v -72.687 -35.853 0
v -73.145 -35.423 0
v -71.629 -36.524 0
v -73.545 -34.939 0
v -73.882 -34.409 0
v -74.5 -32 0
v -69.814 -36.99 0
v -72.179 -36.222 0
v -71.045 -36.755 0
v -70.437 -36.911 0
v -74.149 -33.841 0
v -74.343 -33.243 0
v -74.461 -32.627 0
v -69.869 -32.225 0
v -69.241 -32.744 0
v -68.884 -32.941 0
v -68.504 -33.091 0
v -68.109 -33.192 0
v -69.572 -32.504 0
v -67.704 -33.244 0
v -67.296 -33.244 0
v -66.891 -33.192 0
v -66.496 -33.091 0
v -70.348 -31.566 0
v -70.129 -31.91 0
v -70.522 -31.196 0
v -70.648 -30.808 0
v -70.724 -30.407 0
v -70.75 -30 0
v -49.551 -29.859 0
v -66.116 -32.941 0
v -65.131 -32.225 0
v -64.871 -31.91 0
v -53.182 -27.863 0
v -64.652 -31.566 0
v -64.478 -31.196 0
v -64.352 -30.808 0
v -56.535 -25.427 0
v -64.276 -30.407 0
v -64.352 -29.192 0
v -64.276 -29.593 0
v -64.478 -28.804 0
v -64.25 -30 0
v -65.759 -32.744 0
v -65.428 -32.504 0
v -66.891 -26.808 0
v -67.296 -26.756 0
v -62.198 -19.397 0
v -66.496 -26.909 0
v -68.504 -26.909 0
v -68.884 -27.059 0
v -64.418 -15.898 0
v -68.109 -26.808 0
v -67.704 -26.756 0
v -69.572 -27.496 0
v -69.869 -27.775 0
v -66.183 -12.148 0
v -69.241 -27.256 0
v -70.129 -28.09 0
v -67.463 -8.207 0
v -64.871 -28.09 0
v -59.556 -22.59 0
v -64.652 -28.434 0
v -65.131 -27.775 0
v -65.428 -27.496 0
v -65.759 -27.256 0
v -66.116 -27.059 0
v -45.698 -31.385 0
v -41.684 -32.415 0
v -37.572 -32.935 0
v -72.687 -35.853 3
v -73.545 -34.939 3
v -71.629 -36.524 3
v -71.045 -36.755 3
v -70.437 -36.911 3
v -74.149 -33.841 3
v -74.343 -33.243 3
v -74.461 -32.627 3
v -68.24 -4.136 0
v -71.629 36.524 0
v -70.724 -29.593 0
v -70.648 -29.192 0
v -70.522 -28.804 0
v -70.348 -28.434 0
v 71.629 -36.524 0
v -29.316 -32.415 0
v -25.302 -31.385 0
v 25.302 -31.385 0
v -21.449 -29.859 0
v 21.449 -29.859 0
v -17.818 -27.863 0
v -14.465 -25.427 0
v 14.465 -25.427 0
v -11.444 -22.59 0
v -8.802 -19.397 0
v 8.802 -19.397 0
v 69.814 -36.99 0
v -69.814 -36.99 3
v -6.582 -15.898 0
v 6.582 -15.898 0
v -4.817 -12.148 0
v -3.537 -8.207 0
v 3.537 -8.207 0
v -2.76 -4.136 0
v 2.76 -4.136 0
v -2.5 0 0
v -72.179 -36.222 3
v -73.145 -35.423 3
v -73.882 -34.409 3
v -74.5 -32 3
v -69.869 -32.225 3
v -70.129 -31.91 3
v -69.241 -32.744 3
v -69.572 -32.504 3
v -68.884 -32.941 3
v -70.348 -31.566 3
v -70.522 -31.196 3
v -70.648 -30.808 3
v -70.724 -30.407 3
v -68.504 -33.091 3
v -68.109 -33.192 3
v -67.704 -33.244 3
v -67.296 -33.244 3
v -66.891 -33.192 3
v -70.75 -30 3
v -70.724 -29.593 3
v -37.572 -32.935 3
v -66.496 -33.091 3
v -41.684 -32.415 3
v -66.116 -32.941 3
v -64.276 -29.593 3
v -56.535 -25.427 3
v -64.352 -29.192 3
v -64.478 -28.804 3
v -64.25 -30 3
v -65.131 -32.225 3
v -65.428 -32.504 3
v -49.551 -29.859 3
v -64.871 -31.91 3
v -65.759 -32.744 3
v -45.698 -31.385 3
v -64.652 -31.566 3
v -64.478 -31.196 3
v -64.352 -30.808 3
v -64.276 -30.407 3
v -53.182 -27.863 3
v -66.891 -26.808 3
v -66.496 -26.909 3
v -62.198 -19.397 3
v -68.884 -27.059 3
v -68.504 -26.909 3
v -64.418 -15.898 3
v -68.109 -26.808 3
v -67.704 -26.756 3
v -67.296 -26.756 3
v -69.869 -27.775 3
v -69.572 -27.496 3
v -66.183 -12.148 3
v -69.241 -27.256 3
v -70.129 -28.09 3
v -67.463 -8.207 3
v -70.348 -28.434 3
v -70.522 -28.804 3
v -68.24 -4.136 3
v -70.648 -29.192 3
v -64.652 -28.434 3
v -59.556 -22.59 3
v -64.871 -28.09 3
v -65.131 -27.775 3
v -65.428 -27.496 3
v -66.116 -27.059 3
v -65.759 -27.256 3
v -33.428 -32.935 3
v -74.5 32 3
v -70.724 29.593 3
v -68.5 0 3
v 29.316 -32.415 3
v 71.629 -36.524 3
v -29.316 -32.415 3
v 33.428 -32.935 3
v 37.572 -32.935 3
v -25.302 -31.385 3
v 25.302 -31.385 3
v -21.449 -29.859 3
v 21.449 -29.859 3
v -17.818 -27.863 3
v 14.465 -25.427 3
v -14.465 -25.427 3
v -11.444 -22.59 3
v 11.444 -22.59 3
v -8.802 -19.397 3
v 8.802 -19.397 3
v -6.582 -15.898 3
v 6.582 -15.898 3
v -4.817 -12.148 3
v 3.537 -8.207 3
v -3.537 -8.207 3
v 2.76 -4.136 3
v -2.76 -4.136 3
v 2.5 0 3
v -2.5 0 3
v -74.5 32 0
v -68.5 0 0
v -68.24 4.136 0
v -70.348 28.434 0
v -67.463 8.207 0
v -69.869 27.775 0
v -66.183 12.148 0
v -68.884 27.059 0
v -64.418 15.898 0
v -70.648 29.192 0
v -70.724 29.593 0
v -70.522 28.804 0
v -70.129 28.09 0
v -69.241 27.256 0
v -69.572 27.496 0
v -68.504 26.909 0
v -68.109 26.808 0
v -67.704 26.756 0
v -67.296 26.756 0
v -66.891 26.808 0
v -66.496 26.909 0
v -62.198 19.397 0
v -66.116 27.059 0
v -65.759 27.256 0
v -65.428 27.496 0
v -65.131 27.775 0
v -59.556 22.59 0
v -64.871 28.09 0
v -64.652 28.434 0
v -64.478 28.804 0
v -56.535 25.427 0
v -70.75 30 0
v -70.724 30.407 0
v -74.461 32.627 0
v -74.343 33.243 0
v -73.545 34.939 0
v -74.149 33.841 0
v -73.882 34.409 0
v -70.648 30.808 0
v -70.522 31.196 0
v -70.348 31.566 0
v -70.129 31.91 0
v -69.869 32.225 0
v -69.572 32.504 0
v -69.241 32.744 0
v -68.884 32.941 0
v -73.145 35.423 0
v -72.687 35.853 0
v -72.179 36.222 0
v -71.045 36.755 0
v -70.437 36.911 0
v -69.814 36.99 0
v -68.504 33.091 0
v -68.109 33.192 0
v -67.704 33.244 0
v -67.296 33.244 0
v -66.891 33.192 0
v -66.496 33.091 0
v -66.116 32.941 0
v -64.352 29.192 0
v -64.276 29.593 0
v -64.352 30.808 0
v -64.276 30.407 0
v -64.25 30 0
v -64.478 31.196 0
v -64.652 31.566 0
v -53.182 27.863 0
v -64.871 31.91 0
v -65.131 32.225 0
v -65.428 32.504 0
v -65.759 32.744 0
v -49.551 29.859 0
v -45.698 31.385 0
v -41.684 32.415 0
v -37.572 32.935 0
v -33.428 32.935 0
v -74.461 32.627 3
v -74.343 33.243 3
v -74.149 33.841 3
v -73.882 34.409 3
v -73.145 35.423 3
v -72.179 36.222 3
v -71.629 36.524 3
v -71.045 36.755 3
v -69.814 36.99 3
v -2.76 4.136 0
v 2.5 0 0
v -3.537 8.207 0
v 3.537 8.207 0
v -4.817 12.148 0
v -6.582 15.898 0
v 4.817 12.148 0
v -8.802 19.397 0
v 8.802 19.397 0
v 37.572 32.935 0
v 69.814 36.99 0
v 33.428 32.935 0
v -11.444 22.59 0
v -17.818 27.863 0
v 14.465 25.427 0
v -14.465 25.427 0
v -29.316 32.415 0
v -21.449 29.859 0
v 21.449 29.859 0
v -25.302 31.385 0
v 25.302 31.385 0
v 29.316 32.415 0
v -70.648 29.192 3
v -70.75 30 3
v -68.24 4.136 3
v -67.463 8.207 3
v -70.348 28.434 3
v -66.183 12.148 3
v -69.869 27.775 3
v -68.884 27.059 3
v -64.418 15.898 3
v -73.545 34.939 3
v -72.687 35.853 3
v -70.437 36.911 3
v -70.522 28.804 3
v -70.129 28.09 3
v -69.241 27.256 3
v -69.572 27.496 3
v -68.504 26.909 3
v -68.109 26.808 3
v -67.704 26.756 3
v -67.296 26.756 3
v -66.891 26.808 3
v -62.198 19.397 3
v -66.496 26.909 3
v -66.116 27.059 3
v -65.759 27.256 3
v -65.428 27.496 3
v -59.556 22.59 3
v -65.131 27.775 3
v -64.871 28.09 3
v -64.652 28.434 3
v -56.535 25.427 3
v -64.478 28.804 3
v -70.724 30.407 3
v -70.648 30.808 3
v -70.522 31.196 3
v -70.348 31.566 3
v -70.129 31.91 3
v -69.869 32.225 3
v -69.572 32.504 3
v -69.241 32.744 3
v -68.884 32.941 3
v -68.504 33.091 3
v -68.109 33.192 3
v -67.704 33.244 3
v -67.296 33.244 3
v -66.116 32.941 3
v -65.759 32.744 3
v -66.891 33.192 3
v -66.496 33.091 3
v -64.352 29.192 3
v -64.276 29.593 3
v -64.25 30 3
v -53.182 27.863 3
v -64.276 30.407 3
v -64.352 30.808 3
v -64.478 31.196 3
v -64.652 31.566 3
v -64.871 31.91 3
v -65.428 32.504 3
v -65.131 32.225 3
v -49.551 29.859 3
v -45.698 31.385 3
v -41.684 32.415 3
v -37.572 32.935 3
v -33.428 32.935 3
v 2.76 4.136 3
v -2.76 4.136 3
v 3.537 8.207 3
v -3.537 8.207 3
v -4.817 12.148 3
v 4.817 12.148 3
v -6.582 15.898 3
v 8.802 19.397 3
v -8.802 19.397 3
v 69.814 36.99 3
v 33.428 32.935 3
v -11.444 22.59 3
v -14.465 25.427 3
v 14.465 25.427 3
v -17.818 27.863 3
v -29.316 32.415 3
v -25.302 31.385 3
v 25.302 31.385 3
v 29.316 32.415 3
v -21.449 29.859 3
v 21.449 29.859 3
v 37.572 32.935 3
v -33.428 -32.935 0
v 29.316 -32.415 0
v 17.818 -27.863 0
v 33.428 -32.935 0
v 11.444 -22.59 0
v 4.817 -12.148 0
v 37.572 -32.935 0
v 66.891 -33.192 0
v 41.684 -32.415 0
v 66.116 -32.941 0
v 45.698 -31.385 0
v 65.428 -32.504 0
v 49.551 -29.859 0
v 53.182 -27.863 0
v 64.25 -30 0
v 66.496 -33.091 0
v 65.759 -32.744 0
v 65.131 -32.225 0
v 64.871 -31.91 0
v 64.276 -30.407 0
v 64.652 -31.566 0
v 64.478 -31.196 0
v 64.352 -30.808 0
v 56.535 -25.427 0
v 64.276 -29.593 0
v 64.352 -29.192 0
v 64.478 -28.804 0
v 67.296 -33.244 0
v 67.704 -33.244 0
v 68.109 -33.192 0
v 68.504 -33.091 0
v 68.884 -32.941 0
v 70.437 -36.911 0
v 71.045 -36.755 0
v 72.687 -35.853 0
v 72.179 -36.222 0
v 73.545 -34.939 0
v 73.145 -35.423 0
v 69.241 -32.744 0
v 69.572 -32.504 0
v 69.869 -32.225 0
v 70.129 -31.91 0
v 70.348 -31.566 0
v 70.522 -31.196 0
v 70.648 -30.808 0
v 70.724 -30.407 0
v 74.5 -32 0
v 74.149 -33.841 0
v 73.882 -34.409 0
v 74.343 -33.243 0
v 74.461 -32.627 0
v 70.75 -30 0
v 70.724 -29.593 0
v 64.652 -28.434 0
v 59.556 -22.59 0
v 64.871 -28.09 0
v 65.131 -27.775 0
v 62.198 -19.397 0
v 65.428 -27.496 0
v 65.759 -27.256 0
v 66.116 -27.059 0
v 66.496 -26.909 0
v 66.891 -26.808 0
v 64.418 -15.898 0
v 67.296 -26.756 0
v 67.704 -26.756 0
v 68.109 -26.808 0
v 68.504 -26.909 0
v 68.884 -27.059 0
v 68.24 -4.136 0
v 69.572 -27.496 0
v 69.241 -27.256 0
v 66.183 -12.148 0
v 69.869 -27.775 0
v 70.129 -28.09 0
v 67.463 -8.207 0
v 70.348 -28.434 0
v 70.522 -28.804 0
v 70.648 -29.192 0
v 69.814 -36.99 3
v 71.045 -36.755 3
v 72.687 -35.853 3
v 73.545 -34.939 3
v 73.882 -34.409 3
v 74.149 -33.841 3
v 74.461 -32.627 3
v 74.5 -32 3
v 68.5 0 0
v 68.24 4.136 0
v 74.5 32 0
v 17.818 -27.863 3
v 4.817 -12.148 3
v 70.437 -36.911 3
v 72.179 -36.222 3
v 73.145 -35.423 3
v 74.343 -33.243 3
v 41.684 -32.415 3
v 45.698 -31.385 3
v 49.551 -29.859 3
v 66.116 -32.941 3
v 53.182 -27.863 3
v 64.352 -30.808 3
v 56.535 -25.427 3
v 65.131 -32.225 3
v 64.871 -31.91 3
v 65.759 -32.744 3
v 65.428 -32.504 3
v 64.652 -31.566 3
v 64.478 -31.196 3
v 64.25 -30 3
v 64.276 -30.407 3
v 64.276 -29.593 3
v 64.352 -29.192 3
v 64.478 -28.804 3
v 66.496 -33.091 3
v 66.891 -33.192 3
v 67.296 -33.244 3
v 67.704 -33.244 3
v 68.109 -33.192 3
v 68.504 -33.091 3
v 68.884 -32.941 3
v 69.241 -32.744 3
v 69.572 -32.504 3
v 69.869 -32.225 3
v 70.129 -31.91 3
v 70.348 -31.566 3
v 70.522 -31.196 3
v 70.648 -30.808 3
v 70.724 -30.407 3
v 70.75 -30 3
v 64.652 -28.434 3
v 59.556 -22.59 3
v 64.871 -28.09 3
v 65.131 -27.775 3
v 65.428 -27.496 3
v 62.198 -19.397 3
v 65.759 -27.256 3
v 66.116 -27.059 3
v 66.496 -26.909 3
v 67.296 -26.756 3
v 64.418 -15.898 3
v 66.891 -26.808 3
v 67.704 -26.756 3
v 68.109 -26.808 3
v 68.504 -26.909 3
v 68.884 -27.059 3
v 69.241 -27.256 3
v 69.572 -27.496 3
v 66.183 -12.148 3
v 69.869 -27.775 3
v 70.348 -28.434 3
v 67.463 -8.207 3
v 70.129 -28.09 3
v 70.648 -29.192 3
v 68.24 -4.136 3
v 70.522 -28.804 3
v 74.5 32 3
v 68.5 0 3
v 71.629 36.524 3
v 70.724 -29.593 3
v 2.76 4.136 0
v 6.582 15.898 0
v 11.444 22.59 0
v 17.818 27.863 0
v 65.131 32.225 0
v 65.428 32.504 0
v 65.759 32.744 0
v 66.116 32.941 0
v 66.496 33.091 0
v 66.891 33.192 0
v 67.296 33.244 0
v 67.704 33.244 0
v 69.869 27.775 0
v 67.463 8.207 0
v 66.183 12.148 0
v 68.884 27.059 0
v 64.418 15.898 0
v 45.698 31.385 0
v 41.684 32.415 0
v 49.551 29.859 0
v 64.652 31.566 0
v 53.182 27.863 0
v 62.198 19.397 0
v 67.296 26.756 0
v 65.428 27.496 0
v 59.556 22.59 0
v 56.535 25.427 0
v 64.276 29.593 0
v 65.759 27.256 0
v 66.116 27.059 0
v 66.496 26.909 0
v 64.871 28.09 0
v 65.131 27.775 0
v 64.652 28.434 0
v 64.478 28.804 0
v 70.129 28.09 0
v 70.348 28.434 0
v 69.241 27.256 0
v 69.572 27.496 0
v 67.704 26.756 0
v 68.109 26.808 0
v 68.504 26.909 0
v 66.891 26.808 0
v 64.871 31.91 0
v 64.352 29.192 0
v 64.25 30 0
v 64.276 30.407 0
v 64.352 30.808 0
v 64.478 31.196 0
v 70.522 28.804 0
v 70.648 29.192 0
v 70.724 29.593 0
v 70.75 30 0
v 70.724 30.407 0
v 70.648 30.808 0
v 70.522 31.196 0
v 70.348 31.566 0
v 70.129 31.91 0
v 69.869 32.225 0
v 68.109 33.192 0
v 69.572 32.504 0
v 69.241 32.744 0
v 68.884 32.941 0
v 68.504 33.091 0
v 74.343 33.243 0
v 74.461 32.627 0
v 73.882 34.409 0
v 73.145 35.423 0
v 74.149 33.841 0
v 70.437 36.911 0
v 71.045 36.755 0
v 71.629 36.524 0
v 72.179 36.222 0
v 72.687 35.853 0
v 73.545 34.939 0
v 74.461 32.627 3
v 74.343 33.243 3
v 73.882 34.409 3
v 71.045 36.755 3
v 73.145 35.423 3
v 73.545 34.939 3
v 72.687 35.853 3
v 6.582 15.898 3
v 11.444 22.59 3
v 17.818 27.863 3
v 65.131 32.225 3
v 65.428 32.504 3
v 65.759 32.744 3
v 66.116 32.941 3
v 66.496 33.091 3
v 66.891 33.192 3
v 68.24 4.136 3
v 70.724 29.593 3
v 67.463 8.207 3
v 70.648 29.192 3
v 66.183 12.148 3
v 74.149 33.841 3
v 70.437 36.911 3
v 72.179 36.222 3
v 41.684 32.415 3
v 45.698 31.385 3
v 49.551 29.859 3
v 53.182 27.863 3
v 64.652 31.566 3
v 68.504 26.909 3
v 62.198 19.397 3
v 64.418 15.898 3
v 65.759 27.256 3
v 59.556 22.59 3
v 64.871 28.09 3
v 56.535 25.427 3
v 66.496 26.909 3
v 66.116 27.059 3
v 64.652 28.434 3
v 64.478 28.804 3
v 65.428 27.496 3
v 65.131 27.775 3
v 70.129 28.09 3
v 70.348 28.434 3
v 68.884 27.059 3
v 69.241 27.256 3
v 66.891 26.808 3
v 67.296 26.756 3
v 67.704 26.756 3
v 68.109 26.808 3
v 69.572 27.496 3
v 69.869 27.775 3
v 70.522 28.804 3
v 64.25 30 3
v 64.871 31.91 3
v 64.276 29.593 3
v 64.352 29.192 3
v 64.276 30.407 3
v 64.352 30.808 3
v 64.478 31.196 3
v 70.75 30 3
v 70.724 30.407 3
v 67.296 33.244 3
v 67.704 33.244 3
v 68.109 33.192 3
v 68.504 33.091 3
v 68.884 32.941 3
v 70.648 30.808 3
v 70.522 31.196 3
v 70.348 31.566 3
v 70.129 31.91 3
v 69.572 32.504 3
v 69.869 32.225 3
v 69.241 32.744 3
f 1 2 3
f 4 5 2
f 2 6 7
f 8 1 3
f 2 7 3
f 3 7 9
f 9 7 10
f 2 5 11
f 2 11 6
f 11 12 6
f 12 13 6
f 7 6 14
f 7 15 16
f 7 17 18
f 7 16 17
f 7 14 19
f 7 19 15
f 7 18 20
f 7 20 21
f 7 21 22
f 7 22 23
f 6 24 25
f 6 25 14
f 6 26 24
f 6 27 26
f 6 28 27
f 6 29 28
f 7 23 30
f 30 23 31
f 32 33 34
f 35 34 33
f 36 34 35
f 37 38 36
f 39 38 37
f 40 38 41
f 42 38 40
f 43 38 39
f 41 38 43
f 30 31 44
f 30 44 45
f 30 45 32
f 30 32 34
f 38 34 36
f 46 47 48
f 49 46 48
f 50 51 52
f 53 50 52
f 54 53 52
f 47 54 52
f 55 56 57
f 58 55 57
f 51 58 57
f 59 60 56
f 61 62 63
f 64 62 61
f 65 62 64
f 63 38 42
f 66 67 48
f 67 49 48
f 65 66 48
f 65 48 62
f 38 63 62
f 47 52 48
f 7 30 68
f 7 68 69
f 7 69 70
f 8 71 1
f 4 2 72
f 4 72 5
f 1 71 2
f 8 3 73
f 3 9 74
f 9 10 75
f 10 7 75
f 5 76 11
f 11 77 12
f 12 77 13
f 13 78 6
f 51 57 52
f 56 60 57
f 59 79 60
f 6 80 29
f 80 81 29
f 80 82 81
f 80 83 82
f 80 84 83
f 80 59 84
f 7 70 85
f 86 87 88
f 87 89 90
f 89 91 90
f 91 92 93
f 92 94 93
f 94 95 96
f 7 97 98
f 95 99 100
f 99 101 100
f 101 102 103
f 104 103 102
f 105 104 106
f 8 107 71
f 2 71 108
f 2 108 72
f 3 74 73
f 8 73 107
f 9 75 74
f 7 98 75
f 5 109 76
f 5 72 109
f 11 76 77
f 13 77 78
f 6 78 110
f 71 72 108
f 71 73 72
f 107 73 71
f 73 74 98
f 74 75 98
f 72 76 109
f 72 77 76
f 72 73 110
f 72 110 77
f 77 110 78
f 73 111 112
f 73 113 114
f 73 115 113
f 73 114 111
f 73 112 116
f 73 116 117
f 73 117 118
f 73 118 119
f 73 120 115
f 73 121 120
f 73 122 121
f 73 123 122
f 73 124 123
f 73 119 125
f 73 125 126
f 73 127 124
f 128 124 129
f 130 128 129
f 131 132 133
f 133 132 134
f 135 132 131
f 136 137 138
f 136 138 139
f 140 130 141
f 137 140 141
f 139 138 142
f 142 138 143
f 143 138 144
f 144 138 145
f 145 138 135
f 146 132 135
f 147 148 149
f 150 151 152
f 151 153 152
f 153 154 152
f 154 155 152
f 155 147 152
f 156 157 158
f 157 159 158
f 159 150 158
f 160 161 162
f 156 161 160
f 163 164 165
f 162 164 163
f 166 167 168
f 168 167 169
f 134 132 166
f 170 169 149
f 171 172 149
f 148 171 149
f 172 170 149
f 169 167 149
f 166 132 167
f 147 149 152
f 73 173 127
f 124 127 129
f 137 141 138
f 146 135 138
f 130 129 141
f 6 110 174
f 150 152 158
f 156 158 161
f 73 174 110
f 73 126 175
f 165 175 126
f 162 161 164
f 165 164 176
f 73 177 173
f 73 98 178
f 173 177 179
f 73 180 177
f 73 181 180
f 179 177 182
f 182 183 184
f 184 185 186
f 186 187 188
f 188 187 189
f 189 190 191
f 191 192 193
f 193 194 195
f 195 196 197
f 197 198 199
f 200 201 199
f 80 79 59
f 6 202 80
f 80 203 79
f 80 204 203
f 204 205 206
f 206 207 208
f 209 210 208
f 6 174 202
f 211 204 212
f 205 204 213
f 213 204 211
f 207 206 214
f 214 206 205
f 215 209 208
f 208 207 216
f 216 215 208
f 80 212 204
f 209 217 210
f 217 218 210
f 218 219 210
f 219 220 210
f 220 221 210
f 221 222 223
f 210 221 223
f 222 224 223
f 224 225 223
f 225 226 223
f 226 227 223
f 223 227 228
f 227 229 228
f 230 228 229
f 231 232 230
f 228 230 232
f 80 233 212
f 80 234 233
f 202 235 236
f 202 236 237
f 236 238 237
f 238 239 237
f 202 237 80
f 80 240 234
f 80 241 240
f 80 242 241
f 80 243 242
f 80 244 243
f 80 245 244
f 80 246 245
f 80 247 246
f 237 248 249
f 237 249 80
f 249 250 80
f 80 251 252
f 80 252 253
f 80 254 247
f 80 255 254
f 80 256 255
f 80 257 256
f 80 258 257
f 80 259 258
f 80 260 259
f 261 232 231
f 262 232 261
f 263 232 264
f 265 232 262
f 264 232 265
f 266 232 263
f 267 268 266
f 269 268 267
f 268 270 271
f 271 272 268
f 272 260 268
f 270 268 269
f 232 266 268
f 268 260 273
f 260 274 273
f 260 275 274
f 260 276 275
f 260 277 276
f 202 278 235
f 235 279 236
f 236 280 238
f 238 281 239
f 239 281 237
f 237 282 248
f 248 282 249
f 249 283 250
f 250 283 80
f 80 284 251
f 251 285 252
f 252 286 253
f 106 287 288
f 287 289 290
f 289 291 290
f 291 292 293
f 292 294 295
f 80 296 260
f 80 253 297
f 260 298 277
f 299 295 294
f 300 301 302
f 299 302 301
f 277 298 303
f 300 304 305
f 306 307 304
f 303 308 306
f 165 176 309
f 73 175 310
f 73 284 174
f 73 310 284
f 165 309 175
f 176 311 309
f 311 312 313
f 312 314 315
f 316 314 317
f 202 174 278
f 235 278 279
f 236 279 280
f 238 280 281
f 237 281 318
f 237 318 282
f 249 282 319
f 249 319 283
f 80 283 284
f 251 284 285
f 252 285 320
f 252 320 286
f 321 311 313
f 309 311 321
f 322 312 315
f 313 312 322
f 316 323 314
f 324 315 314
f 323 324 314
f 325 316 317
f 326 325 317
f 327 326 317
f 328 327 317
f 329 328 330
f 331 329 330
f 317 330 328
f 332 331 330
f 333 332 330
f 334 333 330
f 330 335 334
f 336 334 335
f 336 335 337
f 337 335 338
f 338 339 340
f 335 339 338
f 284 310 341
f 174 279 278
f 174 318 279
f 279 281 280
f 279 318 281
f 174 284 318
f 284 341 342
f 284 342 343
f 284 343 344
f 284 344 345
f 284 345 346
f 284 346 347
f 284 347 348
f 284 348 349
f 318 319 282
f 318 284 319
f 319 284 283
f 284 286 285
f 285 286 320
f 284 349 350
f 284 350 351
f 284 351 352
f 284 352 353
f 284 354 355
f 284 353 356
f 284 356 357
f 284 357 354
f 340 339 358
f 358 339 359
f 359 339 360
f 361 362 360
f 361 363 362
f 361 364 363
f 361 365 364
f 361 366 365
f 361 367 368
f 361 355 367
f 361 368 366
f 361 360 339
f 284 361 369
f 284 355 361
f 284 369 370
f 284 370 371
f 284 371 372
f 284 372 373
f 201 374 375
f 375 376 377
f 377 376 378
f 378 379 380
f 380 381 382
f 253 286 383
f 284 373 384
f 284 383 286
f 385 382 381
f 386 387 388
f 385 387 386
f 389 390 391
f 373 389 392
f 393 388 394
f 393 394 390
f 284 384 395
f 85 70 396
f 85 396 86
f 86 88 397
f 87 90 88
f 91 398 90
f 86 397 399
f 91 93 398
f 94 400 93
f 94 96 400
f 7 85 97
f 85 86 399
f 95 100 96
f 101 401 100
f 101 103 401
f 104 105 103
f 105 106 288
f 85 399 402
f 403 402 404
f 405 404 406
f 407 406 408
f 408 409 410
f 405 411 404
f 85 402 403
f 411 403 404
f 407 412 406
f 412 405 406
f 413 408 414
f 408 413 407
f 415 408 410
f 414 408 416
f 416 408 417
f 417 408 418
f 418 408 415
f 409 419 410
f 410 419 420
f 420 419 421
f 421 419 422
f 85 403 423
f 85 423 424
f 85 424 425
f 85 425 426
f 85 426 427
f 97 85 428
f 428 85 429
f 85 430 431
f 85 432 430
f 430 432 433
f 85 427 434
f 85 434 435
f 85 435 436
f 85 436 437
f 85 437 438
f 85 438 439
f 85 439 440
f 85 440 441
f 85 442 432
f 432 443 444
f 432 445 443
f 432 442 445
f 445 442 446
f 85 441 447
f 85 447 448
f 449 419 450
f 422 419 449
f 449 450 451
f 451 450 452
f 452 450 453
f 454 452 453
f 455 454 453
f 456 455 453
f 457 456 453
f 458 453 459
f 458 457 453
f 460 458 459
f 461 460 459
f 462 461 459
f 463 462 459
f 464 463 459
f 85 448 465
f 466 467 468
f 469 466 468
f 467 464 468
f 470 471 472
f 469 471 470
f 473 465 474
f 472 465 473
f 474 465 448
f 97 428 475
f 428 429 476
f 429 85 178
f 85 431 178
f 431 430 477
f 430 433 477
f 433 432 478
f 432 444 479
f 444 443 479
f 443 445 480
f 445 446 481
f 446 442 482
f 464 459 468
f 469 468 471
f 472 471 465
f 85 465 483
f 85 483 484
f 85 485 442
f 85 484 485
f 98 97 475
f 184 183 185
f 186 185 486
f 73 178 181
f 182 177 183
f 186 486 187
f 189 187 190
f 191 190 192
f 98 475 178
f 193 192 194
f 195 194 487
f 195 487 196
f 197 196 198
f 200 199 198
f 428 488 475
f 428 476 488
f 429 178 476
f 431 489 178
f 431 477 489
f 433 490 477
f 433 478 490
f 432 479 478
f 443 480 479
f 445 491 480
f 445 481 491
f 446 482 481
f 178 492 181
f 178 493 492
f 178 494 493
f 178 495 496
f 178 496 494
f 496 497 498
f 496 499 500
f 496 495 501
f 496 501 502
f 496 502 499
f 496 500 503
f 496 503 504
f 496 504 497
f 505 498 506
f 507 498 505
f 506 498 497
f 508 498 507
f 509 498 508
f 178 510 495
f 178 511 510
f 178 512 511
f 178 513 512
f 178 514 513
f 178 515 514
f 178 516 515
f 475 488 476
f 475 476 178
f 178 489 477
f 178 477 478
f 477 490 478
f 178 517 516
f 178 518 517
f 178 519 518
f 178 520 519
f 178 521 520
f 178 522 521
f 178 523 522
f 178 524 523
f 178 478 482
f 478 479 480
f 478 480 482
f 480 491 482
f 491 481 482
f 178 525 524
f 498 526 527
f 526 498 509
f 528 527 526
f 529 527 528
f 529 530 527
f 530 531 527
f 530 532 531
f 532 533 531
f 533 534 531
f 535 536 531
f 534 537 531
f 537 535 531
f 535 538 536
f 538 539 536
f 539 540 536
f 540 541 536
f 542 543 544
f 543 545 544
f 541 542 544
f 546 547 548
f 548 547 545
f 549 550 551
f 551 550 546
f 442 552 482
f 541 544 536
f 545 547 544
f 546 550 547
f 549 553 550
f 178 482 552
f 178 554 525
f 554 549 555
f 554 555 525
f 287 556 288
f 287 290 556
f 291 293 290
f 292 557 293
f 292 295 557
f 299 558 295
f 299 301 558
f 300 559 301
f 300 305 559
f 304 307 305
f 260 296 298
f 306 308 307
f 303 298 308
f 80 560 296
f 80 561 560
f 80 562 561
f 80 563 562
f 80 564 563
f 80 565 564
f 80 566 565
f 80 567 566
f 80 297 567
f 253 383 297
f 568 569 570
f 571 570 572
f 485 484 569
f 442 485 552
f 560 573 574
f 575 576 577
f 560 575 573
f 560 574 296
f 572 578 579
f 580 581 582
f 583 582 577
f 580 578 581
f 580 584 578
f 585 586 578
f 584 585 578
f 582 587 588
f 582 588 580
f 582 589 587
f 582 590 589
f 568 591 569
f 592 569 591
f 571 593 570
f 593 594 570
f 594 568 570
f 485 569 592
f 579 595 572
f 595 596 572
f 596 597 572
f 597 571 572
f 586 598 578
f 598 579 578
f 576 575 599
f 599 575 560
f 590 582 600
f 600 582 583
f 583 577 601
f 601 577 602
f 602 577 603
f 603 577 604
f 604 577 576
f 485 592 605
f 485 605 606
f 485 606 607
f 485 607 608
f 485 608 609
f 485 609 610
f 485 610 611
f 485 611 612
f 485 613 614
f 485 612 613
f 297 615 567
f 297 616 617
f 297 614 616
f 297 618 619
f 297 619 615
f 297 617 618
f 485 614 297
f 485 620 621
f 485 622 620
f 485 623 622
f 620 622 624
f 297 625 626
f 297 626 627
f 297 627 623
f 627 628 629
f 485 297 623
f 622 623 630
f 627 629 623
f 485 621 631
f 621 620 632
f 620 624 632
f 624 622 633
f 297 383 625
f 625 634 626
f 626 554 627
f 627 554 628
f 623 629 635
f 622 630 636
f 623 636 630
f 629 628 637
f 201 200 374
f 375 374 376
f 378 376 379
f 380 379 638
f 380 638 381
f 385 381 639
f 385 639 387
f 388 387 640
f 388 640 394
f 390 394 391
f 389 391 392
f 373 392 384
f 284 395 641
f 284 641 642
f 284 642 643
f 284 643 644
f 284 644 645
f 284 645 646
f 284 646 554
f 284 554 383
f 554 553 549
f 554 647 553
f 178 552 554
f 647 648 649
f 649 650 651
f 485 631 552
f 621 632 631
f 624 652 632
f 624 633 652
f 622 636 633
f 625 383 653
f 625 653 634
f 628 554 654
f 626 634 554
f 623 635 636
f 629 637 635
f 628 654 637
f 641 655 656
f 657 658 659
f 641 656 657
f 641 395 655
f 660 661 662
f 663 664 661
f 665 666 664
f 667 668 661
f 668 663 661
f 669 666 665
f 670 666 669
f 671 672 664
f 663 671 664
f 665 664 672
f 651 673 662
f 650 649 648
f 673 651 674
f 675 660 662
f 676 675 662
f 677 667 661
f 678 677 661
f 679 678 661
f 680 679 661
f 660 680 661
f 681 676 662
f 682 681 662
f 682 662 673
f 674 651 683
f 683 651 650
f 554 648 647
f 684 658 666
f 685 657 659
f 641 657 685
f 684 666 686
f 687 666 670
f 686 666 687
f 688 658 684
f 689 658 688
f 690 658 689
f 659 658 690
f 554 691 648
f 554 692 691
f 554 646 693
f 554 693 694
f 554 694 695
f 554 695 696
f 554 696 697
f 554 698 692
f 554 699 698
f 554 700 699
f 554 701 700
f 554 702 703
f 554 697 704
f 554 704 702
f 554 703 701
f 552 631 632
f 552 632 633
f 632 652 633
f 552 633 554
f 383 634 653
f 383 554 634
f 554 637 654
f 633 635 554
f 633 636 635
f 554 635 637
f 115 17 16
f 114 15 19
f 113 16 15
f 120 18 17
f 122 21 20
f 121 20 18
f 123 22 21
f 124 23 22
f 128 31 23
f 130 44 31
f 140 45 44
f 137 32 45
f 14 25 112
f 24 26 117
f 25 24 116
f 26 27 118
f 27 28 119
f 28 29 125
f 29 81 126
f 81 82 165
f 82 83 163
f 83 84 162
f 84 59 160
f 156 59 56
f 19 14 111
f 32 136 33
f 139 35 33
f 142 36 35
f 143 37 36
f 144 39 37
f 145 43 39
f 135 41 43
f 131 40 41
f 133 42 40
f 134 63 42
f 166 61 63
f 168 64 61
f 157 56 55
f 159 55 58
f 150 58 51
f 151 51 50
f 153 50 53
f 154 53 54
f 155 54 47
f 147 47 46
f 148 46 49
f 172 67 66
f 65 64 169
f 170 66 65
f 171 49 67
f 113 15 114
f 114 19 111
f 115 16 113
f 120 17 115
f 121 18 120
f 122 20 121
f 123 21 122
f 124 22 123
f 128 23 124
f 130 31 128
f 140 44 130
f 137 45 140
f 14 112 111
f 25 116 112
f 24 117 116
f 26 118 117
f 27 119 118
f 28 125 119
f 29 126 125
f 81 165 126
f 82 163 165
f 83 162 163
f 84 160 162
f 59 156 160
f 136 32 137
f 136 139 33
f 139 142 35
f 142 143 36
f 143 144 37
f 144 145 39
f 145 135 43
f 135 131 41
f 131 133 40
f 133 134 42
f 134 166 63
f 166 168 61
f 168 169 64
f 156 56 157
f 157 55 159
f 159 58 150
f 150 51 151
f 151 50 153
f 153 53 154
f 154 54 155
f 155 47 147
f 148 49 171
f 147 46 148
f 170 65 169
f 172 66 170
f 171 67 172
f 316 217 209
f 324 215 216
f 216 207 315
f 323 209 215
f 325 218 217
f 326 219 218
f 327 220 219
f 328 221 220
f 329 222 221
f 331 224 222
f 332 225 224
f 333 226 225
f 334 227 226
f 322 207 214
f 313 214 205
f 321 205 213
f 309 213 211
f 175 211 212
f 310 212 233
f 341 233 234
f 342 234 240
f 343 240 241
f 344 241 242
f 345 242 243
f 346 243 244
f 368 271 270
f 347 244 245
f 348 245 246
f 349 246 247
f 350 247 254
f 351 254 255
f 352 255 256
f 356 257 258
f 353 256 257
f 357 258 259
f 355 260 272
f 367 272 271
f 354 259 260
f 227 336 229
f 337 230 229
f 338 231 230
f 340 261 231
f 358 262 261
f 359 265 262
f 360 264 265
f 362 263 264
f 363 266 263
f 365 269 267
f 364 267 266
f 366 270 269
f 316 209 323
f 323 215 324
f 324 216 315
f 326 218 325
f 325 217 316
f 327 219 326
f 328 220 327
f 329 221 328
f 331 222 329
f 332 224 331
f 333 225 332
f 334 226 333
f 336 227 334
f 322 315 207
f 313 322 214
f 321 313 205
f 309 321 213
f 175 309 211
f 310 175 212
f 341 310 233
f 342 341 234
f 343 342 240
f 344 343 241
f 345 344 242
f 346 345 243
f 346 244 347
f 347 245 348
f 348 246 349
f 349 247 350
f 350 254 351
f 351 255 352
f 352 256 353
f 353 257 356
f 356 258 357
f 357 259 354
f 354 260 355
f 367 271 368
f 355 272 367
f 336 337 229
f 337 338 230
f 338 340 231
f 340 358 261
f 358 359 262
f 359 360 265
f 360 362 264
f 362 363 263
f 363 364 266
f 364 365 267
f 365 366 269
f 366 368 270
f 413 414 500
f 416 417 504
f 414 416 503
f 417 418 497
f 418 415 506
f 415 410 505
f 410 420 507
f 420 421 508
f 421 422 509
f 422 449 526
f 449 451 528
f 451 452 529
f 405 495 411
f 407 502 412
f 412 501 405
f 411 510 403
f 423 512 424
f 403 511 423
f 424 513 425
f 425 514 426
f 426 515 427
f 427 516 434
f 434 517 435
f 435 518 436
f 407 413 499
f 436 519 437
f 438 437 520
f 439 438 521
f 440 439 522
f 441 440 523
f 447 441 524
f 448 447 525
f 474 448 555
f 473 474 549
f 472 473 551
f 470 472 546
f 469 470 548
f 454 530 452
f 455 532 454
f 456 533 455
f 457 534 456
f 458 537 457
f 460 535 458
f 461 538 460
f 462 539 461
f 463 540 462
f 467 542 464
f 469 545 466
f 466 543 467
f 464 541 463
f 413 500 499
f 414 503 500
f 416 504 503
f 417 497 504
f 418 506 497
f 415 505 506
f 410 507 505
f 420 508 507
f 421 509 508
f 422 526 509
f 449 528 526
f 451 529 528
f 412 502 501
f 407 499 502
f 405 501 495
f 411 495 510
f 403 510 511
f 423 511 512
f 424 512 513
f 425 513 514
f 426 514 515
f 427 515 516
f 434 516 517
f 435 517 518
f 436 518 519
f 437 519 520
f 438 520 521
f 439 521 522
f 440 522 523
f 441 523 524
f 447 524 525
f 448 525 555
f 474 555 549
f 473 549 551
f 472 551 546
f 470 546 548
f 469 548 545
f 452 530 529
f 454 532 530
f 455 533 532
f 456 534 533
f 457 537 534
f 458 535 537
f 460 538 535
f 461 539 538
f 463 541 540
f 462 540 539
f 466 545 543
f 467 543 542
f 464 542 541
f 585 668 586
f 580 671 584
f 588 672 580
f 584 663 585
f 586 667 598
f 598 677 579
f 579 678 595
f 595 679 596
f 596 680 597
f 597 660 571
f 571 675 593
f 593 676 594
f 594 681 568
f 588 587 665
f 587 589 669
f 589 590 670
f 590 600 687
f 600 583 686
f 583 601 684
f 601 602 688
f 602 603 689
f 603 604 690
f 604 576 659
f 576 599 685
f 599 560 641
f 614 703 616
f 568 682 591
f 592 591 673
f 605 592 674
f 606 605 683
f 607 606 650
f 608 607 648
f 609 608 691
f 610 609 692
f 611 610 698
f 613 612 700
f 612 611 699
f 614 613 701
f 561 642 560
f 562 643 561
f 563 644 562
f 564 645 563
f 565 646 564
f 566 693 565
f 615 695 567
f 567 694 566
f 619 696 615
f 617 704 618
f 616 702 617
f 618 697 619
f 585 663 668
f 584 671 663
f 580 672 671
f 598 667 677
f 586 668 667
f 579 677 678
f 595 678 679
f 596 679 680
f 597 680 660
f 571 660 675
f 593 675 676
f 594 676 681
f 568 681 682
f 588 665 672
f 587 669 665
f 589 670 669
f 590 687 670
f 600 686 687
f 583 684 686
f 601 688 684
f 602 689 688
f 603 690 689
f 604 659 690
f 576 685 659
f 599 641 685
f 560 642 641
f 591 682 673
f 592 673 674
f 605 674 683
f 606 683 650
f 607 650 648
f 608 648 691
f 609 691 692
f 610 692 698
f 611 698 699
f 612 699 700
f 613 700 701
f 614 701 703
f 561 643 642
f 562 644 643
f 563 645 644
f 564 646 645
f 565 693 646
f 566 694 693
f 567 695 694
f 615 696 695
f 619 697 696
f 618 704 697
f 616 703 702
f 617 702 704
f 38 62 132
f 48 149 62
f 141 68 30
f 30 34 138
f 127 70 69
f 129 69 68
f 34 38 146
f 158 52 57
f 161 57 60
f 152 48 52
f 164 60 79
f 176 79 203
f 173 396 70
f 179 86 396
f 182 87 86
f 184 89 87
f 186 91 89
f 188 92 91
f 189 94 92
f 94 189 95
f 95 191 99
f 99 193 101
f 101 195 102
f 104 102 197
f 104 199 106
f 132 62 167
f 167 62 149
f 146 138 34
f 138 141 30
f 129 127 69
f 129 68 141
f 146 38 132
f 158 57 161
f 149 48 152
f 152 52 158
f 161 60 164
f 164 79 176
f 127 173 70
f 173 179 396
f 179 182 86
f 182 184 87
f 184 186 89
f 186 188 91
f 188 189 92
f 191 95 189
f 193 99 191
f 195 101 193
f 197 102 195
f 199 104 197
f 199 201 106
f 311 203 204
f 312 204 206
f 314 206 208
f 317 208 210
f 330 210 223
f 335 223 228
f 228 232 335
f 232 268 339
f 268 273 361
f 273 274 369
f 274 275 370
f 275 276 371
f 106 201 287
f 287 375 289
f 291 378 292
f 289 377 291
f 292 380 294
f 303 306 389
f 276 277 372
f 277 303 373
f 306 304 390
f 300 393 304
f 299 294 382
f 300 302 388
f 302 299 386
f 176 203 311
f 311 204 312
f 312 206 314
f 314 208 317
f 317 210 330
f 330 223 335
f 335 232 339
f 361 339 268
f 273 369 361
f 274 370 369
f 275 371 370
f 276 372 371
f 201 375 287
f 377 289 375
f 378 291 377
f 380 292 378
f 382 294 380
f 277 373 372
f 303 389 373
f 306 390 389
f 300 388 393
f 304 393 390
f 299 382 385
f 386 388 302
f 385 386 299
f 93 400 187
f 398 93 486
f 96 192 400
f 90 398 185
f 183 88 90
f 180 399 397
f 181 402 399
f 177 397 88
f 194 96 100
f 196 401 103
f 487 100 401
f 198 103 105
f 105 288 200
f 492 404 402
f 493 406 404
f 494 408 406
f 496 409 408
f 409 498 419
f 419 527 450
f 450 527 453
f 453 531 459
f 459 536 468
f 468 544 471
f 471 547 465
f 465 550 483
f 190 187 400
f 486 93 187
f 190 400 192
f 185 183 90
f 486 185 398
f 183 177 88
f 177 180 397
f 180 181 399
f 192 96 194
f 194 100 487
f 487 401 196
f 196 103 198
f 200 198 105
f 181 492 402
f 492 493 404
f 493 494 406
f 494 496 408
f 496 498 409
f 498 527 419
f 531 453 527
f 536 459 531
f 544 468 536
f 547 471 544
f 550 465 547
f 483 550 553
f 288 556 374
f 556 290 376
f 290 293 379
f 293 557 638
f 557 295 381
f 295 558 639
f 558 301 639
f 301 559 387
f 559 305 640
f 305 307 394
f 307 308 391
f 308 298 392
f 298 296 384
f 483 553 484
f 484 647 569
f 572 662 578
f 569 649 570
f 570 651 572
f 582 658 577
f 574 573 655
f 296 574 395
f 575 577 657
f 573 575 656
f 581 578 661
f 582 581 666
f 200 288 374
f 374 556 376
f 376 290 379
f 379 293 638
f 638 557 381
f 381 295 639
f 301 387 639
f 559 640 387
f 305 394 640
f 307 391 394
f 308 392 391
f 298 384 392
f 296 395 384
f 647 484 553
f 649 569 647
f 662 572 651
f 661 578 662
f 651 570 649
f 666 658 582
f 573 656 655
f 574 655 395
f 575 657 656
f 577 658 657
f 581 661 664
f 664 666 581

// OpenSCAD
$fn = 50;

difference() {
	union() {
		hull() {
			translate(v = [-69.5, 32.0, 0]) {
				cylinder(h = 3, r = 5);
			}
			translate(v = [69.5, 32.0, 0]) {
				cylinder(h = 3, r = 5);
			}
			translate(v = [-69.5, -32.0, 0]) {
				cylinder(h = 3, r = 5);
			}
			translate(v = [69.5, -32.0, 0]) {
				cylinder(h = 3, r = 5);
			}
		}
	}
	union() {
		translate(v = [-67.5, -30.0, -100.0]) {
			cylinder(h = 200, r = 3.25);
		}
		translate(v = [-67.5, 30.0, -100.0]) {
			cylinder(h = 200, r = 3.25);
		}
		translate(v = [67.5, -30.0, -100.0]) {
			cylinder(h = 200, r = 3.25);
		}
		translate(v = [67.5, 30.0, -100.0]) {
			cylinder(h = 200, r = 3.25);
		}
		translate(v = [-67.5, -30.0, -100.0]) {
			cylinder(h = 200, r = 1.8);
		}
		translate(v = [-67.5, 30.0, -100.0]) {
			cylinder(h = 200, r = 1.8);
		}
		translate(v = [67.5, -30.0, -100.0]) {
			cylinder(h = 200, r = 1.8);
		}
		translate(v = [67.5, 30.0, -100.0]) {
			cylinder(h = 200, r = 1.8);
		}
		translate(v = [-35.5, 0, 0.0]) {
			cylinder(h = 3, r = 33.0);
		}
		translate(v = [35.5, 0, 0.0]) {
			cylinder(h = 3, r = 33.0);
		}
	}
}
